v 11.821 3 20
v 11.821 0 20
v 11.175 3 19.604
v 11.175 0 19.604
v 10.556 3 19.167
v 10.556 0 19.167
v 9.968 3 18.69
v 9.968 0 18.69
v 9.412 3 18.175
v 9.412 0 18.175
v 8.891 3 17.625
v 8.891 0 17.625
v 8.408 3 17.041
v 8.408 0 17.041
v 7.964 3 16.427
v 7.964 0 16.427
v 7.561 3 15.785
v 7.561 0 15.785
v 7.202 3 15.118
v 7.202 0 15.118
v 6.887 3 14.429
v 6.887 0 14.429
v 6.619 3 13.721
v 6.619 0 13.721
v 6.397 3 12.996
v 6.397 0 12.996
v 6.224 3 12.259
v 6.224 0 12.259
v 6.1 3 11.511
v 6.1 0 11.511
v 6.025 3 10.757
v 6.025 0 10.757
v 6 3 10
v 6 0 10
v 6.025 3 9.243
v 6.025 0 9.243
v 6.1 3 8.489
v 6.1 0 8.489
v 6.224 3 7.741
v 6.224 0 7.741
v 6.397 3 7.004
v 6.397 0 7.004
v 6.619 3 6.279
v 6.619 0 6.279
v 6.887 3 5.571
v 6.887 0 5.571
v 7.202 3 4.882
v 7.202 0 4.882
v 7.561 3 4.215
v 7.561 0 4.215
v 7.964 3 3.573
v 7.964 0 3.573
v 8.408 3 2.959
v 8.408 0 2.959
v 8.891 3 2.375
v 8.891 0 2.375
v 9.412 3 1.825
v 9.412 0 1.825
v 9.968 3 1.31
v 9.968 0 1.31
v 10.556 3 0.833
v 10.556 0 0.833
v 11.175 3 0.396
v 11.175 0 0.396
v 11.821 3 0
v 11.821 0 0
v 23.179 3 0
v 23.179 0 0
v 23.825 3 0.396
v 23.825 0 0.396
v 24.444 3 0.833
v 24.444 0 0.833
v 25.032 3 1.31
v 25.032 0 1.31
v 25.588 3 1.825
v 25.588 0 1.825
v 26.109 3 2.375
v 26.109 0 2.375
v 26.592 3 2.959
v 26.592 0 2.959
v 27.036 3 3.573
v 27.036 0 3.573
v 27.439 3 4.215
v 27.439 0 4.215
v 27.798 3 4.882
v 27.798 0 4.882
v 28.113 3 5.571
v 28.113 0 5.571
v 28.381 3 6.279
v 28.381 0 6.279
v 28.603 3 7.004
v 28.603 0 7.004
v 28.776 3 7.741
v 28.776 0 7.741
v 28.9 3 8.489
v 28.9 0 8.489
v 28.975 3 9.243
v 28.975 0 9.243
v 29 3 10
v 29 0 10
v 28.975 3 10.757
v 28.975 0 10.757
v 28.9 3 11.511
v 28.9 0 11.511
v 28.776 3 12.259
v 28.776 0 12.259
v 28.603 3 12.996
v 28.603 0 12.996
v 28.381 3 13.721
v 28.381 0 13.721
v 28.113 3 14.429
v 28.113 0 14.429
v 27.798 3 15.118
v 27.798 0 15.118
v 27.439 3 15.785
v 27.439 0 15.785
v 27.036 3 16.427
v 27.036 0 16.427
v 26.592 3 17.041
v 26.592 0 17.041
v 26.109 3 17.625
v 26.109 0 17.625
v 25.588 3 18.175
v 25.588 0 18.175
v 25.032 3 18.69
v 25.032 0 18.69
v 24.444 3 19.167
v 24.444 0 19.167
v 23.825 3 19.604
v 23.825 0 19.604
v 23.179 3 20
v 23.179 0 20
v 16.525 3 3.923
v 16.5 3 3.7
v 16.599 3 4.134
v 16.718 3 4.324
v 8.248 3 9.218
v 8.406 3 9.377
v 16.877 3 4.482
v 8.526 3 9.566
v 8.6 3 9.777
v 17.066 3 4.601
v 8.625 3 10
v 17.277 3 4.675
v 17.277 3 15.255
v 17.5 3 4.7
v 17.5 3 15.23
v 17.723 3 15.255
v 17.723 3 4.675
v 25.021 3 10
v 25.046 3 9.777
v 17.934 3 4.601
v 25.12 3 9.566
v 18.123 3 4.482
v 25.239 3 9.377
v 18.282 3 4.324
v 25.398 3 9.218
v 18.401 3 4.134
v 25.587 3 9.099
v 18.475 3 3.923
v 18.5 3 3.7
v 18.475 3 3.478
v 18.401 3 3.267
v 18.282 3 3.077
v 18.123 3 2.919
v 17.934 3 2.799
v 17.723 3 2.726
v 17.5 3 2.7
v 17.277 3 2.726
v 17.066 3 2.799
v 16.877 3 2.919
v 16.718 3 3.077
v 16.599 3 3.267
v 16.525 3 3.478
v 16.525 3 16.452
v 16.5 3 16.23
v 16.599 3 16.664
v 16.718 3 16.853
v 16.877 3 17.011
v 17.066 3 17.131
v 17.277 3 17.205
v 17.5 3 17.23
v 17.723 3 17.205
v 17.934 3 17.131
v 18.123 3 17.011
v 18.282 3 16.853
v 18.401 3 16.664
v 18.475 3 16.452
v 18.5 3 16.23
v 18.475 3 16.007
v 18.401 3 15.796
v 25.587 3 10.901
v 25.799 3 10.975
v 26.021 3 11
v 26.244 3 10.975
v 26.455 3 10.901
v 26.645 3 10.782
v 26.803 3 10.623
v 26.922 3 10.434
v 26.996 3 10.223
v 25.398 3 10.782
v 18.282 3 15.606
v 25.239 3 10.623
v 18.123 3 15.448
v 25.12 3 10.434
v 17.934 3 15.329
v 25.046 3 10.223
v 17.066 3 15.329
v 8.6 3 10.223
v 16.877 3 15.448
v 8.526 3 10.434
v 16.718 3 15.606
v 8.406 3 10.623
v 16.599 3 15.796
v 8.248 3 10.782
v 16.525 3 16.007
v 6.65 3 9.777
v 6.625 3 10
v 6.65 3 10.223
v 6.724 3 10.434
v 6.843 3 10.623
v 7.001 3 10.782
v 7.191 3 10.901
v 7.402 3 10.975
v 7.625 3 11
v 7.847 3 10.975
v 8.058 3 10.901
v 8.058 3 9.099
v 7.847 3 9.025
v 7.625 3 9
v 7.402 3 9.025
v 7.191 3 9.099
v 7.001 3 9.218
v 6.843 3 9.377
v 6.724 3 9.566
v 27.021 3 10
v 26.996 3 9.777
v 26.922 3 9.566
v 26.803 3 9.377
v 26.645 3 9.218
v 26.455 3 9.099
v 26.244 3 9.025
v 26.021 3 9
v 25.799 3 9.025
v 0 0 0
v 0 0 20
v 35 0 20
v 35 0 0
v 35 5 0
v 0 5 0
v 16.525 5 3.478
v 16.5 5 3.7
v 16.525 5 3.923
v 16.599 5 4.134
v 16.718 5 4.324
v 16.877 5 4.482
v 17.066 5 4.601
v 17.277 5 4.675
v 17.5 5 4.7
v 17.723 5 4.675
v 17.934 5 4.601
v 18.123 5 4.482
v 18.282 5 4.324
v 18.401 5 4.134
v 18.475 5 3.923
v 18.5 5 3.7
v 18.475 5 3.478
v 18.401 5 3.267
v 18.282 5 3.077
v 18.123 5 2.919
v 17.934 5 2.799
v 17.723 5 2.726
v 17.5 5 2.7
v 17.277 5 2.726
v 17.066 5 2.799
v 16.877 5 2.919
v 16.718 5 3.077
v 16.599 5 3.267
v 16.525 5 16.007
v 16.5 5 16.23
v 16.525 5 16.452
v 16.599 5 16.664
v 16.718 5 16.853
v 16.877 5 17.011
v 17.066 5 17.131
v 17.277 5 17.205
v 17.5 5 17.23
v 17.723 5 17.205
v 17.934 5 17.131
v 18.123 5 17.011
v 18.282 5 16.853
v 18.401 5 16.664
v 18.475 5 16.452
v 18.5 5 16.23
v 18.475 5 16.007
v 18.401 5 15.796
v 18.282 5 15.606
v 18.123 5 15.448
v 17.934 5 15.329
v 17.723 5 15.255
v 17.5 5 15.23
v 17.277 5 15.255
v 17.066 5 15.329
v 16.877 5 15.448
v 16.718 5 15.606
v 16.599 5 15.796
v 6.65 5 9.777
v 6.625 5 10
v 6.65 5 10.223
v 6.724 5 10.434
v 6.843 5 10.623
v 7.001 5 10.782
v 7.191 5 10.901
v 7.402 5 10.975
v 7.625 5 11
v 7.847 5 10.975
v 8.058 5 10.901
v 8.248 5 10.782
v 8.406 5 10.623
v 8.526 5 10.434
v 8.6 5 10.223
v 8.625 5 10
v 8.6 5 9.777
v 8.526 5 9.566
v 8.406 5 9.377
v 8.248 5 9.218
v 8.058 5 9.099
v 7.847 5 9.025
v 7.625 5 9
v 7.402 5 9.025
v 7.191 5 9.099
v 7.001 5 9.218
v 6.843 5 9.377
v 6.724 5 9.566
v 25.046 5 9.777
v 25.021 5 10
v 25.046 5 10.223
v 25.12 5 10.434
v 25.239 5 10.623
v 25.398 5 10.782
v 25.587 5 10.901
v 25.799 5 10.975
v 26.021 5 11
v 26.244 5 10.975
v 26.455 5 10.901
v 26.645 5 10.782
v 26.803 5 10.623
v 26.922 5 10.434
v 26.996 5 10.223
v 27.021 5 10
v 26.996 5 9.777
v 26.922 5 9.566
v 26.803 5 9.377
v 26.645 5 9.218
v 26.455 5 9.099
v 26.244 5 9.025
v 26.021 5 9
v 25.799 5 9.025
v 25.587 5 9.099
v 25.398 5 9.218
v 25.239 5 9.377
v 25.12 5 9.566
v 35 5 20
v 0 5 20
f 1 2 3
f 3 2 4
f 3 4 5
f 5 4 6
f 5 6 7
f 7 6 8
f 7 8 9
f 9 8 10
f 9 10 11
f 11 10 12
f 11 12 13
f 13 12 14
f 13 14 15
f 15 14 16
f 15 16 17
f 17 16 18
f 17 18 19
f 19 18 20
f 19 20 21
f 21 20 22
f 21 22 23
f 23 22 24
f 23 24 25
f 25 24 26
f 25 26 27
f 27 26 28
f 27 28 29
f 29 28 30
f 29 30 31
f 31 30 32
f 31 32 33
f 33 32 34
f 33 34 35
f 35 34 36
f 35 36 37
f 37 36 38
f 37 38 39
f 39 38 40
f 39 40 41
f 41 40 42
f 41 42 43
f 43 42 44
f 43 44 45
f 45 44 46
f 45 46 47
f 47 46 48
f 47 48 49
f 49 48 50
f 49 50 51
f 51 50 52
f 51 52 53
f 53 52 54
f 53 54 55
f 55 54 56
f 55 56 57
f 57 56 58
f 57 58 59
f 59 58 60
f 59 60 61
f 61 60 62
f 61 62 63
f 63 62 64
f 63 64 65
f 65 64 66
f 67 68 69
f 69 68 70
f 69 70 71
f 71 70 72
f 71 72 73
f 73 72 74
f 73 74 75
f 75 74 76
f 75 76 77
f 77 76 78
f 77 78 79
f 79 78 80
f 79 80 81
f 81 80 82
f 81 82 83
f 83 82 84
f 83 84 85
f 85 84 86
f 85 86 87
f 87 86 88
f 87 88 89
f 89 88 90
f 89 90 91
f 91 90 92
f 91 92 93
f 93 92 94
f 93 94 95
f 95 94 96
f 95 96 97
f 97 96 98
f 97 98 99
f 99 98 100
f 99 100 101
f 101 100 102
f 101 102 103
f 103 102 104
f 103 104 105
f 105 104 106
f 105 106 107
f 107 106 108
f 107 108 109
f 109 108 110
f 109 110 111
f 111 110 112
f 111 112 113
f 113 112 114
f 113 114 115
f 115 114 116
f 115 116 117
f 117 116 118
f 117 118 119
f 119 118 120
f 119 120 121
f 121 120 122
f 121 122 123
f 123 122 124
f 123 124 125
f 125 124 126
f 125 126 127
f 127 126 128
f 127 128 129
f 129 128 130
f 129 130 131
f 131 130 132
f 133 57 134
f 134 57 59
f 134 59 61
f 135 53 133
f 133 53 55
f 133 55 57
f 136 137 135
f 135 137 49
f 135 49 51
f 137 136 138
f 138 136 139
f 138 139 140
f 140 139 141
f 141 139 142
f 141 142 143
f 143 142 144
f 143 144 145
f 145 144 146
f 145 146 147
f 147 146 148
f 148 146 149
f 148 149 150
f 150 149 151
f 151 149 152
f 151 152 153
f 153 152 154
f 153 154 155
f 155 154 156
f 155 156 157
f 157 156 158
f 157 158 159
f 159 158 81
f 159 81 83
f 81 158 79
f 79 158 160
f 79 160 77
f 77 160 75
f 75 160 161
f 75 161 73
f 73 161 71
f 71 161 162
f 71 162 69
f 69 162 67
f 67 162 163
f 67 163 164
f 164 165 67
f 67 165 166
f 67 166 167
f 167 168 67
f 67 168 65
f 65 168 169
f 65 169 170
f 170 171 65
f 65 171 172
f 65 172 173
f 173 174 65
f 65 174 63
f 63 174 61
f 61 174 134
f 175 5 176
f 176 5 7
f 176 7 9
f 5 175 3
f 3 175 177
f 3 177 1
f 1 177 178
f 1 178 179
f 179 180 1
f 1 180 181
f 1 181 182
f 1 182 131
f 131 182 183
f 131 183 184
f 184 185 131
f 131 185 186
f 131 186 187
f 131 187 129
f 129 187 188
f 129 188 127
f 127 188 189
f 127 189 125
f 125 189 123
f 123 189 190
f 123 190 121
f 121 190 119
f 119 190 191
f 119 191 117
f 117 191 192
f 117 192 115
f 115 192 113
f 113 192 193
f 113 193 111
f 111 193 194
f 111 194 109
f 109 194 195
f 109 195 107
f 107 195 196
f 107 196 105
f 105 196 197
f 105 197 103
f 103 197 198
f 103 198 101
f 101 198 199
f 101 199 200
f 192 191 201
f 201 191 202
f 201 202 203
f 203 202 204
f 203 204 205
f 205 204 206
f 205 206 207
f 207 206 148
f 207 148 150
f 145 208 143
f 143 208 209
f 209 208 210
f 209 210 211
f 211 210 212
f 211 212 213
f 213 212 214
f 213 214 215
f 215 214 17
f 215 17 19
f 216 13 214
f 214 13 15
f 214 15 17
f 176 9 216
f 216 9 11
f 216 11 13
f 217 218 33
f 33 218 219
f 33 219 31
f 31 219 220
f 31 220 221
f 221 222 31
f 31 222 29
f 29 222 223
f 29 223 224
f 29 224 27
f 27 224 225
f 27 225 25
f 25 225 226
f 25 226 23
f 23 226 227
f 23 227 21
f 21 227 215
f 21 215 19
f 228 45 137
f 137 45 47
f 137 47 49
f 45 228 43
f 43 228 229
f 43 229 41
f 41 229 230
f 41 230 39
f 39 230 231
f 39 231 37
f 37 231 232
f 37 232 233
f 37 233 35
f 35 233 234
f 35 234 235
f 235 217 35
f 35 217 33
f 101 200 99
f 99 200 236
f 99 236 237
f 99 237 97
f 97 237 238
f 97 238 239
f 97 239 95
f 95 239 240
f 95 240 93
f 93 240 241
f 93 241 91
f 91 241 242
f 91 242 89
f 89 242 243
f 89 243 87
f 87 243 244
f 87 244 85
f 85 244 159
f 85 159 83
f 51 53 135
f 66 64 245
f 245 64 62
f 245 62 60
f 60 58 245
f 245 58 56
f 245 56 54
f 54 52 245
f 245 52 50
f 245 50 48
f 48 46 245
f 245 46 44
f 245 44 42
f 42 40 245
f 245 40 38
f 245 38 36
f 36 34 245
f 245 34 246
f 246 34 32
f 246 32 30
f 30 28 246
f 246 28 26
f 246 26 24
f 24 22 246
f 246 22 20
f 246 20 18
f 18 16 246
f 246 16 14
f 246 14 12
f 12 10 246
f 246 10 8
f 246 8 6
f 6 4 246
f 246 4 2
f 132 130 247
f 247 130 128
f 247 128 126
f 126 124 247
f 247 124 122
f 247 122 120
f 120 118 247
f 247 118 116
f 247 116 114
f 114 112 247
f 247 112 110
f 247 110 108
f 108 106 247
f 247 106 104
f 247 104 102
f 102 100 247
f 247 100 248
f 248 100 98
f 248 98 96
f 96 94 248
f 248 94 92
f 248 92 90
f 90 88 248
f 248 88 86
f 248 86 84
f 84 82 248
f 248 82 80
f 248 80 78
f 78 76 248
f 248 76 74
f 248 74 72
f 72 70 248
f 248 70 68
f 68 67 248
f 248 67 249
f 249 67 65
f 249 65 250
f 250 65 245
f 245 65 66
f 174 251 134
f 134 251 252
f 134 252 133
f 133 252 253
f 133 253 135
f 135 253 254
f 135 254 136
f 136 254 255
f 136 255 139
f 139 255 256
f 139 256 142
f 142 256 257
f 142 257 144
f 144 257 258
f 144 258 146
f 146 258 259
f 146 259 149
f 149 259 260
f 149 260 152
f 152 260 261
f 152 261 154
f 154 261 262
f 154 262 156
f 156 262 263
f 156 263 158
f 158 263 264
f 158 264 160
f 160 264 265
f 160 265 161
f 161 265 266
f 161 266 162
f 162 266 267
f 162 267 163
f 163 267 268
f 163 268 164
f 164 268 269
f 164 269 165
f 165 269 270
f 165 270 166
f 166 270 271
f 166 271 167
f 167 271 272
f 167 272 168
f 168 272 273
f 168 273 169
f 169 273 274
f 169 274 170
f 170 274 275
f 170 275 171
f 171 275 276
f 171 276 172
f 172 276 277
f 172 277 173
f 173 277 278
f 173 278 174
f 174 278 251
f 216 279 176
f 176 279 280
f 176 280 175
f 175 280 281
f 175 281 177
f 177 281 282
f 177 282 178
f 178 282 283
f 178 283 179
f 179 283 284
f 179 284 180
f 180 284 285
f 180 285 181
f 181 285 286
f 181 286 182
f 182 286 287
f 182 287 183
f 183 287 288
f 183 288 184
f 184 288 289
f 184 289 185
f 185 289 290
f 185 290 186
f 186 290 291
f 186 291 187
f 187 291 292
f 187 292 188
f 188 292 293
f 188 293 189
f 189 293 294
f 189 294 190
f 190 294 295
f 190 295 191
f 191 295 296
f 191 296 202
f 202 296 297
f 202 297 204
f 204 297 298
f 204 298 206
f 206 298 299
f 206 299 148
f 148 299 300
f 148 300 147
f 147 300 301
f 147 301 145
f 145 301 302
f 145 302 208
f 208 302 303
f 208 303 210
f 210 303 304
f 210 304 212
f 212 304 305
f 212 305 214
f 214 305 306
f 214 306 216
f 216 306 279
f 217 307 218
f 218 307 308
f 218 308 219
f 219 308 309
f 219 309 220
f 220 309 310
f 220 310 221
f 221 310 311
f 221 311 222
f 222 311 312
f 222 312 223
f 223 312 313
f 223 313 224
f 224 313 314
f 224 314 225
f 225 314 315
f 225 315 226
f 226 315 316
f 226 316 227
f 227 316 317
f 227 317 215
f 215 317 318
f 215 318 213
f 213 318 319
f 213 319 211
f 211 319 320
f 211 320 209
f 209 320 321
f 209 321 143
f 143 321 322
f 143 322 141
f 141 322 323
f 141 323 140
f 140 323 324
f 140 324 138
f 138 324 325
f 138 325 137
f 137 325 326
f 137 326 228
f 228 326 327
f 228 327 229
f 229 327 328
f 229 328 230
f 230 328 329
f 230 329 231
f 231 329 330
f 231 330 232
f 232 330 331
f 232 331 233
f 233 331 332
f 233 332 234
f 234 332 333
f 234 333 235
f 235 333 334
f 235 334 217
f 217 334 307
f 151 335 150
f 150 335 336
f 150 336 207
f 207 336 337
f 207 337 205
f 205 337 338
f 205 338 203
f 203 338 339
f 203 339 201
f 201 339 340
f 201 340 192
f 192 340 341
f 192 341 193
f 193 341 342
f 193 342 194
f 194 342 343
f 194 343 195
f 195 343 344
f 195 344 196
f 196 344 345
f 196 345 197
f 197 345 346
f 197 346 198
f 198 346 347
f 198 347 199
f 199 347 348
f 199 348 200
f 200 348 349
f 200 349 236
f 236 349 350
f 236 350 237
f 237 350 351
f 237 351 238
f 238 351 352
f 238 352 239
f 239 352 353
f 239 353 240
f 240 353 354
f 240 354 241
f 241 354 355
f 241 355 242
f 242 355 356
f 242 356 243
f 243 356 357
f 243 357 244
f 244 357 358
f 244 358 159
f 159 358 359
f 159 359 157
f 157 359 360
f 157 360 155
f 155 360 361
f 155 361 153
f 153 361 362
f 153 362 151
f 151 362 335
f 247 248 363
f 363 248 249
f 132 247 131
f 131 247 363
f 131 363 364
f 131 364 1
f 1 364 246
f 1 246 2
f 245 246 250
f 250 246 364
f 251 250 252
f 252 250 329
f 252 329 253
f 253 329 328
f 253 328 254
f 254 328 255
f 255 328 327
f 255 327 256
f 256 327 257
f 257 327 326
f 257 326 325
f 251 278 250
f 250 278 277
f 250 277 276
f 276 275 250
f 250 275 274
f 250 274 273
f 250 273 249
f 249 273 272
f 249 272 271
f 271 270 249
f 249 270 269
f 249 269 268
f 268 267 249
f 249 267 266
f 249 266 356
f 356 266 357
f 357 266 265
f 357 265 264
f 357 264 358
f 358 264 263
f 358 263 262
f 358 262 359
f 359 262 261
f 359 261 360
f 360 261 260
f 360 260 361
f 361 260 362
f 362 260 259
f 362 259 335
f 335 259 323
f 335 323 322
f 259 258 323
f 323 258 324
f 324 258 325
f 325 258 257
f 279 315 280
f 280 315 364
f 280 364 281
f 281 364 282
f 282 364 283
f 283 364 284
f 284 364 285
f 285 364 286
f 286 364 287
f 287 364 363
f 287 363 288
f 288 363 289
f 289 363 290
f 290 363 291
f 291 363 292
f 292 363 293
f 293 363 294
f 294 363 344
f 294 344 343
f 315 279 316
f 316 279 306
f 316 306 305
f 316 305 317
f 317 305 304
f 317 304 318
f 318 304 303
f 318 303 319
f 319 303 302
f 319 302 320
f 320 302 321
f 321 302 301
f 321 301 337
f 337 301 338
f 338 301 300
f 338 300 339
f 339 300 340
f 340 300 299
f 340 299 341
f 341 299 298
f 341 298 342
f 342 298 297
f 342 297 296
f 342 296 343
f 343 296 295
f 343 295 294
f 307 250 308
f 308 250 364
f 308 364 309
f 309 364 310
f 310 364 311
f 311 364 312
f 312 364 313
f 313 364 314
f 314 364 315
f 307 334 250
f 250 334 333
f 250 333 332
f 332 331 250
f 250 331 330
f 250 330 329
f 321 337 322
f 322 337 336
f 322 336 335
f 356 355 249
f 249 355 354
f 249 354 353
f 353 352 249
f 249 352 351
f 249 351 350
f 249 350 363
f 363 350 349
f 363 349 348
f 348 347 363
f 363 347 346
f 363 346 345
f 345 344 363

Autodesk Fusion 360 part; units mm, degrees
sketch "Sketch1" plane through (0, 0, 0) normal (0, 1, 0) x (1, 0, 0) in component "base_plate"
  line L0 (0, 0) -> (35, 0)
  line L1 (35, 0) -> (35, -20)
  line L2 (0, 0) -> (0, -20)
  line L3 (0, -20) -> (35, -20)
  dimension "d1" = 35
  dimension "d2" = 20
  dimension "d3" = 20
extrude "Extrude1" add sketch "Sketch1" along normal blind 5 in component "base_plate"
sketch "Sketch2" plane through (0, 0, 0) normal (0, -1, 0) x (1, 0, 0) in component "base_plate"
  line L0 (0, 20) -> (0, 0)
  line L1 (0, 0) -> (35, 0)
  line L2 (35, 0) -> (35, 20)
  line L3 (35, 20) -> (0, 20)
  line L4 (0, 10) -> (35, 10) construction
  line L5 (17.5, 20) -> (17.5, 0) construction
  circle A0 centre (7.6246, 10) radius 1
  circle A1 centre (26.0211, 10) radius 1
  dimension "d6" = 2
  dimension "d7" = 2
extrude "Extrude2" cut sketch "Sketch2" against normal blind 5 contours A0 | A1 in component "base_plate"
sketch "Sketch3" plane through (0, 0, 0) normal (0, -1, 0) x (1, 0, 0) in component "base_plate"
  circle A0 centre (7.6246, 10) radius 1
  circle A1 centre (26.0211, 10) radius 1
  line L0 (0, 20) -> (0, 0)
  line L1 (0, 0) -> (35, 0)
  line L2 (35, 0) -> (35, 20)
  line L3 (35, 20) -> (0, 20)
  line L4 (17.5, 20) -> (17.5, 0) construction
  circle A2 centre (17.5, 16.2296) radius 1
  circle A3 centre (17.5, 3.7004) radius 1
  dimension "d10" = 2
  dimension "d11" = 2
extrude "Extrude3" cut sketch "Sketch3" against normal blind 5 contours A2 | A3 in component "base_plate"
sketch "Sketch4" plane through (0, 0, 0) normal (0, -1, 0) x (1, 0, 0) in component "base_plate"
  circle A0 centre (17.5, 3.7004) radius 1
  circle A1 centre (17.5, 16.2296) radius 1
  circle A2 centre (7.6246, 10) radius 1
  circle A3 centre (26.0211, 10) radius 1
  line L0 (0, 20) -> (0, 0)
  line L1 (0, 0) -> (35, 0)
  line L2 (35, 0) -> (35, 20)
  line L3 (35, 20) -> (0, 20)
  line L4 (17.5, 20) -> (17.5, 0) construction
  circle A4 centre (17.5, 10) radius 11.5
extrude "Extrude4" cut sketch "Sketch4" against normal blind 3 contours A0 | A1 | A2 | A3 | L1 L3 A4 in component "base_plate"
component "base_plate" placed x (1, 0, 0) y (0, 1, 0) z (0, 0, 1) at (0, 0, 0)
